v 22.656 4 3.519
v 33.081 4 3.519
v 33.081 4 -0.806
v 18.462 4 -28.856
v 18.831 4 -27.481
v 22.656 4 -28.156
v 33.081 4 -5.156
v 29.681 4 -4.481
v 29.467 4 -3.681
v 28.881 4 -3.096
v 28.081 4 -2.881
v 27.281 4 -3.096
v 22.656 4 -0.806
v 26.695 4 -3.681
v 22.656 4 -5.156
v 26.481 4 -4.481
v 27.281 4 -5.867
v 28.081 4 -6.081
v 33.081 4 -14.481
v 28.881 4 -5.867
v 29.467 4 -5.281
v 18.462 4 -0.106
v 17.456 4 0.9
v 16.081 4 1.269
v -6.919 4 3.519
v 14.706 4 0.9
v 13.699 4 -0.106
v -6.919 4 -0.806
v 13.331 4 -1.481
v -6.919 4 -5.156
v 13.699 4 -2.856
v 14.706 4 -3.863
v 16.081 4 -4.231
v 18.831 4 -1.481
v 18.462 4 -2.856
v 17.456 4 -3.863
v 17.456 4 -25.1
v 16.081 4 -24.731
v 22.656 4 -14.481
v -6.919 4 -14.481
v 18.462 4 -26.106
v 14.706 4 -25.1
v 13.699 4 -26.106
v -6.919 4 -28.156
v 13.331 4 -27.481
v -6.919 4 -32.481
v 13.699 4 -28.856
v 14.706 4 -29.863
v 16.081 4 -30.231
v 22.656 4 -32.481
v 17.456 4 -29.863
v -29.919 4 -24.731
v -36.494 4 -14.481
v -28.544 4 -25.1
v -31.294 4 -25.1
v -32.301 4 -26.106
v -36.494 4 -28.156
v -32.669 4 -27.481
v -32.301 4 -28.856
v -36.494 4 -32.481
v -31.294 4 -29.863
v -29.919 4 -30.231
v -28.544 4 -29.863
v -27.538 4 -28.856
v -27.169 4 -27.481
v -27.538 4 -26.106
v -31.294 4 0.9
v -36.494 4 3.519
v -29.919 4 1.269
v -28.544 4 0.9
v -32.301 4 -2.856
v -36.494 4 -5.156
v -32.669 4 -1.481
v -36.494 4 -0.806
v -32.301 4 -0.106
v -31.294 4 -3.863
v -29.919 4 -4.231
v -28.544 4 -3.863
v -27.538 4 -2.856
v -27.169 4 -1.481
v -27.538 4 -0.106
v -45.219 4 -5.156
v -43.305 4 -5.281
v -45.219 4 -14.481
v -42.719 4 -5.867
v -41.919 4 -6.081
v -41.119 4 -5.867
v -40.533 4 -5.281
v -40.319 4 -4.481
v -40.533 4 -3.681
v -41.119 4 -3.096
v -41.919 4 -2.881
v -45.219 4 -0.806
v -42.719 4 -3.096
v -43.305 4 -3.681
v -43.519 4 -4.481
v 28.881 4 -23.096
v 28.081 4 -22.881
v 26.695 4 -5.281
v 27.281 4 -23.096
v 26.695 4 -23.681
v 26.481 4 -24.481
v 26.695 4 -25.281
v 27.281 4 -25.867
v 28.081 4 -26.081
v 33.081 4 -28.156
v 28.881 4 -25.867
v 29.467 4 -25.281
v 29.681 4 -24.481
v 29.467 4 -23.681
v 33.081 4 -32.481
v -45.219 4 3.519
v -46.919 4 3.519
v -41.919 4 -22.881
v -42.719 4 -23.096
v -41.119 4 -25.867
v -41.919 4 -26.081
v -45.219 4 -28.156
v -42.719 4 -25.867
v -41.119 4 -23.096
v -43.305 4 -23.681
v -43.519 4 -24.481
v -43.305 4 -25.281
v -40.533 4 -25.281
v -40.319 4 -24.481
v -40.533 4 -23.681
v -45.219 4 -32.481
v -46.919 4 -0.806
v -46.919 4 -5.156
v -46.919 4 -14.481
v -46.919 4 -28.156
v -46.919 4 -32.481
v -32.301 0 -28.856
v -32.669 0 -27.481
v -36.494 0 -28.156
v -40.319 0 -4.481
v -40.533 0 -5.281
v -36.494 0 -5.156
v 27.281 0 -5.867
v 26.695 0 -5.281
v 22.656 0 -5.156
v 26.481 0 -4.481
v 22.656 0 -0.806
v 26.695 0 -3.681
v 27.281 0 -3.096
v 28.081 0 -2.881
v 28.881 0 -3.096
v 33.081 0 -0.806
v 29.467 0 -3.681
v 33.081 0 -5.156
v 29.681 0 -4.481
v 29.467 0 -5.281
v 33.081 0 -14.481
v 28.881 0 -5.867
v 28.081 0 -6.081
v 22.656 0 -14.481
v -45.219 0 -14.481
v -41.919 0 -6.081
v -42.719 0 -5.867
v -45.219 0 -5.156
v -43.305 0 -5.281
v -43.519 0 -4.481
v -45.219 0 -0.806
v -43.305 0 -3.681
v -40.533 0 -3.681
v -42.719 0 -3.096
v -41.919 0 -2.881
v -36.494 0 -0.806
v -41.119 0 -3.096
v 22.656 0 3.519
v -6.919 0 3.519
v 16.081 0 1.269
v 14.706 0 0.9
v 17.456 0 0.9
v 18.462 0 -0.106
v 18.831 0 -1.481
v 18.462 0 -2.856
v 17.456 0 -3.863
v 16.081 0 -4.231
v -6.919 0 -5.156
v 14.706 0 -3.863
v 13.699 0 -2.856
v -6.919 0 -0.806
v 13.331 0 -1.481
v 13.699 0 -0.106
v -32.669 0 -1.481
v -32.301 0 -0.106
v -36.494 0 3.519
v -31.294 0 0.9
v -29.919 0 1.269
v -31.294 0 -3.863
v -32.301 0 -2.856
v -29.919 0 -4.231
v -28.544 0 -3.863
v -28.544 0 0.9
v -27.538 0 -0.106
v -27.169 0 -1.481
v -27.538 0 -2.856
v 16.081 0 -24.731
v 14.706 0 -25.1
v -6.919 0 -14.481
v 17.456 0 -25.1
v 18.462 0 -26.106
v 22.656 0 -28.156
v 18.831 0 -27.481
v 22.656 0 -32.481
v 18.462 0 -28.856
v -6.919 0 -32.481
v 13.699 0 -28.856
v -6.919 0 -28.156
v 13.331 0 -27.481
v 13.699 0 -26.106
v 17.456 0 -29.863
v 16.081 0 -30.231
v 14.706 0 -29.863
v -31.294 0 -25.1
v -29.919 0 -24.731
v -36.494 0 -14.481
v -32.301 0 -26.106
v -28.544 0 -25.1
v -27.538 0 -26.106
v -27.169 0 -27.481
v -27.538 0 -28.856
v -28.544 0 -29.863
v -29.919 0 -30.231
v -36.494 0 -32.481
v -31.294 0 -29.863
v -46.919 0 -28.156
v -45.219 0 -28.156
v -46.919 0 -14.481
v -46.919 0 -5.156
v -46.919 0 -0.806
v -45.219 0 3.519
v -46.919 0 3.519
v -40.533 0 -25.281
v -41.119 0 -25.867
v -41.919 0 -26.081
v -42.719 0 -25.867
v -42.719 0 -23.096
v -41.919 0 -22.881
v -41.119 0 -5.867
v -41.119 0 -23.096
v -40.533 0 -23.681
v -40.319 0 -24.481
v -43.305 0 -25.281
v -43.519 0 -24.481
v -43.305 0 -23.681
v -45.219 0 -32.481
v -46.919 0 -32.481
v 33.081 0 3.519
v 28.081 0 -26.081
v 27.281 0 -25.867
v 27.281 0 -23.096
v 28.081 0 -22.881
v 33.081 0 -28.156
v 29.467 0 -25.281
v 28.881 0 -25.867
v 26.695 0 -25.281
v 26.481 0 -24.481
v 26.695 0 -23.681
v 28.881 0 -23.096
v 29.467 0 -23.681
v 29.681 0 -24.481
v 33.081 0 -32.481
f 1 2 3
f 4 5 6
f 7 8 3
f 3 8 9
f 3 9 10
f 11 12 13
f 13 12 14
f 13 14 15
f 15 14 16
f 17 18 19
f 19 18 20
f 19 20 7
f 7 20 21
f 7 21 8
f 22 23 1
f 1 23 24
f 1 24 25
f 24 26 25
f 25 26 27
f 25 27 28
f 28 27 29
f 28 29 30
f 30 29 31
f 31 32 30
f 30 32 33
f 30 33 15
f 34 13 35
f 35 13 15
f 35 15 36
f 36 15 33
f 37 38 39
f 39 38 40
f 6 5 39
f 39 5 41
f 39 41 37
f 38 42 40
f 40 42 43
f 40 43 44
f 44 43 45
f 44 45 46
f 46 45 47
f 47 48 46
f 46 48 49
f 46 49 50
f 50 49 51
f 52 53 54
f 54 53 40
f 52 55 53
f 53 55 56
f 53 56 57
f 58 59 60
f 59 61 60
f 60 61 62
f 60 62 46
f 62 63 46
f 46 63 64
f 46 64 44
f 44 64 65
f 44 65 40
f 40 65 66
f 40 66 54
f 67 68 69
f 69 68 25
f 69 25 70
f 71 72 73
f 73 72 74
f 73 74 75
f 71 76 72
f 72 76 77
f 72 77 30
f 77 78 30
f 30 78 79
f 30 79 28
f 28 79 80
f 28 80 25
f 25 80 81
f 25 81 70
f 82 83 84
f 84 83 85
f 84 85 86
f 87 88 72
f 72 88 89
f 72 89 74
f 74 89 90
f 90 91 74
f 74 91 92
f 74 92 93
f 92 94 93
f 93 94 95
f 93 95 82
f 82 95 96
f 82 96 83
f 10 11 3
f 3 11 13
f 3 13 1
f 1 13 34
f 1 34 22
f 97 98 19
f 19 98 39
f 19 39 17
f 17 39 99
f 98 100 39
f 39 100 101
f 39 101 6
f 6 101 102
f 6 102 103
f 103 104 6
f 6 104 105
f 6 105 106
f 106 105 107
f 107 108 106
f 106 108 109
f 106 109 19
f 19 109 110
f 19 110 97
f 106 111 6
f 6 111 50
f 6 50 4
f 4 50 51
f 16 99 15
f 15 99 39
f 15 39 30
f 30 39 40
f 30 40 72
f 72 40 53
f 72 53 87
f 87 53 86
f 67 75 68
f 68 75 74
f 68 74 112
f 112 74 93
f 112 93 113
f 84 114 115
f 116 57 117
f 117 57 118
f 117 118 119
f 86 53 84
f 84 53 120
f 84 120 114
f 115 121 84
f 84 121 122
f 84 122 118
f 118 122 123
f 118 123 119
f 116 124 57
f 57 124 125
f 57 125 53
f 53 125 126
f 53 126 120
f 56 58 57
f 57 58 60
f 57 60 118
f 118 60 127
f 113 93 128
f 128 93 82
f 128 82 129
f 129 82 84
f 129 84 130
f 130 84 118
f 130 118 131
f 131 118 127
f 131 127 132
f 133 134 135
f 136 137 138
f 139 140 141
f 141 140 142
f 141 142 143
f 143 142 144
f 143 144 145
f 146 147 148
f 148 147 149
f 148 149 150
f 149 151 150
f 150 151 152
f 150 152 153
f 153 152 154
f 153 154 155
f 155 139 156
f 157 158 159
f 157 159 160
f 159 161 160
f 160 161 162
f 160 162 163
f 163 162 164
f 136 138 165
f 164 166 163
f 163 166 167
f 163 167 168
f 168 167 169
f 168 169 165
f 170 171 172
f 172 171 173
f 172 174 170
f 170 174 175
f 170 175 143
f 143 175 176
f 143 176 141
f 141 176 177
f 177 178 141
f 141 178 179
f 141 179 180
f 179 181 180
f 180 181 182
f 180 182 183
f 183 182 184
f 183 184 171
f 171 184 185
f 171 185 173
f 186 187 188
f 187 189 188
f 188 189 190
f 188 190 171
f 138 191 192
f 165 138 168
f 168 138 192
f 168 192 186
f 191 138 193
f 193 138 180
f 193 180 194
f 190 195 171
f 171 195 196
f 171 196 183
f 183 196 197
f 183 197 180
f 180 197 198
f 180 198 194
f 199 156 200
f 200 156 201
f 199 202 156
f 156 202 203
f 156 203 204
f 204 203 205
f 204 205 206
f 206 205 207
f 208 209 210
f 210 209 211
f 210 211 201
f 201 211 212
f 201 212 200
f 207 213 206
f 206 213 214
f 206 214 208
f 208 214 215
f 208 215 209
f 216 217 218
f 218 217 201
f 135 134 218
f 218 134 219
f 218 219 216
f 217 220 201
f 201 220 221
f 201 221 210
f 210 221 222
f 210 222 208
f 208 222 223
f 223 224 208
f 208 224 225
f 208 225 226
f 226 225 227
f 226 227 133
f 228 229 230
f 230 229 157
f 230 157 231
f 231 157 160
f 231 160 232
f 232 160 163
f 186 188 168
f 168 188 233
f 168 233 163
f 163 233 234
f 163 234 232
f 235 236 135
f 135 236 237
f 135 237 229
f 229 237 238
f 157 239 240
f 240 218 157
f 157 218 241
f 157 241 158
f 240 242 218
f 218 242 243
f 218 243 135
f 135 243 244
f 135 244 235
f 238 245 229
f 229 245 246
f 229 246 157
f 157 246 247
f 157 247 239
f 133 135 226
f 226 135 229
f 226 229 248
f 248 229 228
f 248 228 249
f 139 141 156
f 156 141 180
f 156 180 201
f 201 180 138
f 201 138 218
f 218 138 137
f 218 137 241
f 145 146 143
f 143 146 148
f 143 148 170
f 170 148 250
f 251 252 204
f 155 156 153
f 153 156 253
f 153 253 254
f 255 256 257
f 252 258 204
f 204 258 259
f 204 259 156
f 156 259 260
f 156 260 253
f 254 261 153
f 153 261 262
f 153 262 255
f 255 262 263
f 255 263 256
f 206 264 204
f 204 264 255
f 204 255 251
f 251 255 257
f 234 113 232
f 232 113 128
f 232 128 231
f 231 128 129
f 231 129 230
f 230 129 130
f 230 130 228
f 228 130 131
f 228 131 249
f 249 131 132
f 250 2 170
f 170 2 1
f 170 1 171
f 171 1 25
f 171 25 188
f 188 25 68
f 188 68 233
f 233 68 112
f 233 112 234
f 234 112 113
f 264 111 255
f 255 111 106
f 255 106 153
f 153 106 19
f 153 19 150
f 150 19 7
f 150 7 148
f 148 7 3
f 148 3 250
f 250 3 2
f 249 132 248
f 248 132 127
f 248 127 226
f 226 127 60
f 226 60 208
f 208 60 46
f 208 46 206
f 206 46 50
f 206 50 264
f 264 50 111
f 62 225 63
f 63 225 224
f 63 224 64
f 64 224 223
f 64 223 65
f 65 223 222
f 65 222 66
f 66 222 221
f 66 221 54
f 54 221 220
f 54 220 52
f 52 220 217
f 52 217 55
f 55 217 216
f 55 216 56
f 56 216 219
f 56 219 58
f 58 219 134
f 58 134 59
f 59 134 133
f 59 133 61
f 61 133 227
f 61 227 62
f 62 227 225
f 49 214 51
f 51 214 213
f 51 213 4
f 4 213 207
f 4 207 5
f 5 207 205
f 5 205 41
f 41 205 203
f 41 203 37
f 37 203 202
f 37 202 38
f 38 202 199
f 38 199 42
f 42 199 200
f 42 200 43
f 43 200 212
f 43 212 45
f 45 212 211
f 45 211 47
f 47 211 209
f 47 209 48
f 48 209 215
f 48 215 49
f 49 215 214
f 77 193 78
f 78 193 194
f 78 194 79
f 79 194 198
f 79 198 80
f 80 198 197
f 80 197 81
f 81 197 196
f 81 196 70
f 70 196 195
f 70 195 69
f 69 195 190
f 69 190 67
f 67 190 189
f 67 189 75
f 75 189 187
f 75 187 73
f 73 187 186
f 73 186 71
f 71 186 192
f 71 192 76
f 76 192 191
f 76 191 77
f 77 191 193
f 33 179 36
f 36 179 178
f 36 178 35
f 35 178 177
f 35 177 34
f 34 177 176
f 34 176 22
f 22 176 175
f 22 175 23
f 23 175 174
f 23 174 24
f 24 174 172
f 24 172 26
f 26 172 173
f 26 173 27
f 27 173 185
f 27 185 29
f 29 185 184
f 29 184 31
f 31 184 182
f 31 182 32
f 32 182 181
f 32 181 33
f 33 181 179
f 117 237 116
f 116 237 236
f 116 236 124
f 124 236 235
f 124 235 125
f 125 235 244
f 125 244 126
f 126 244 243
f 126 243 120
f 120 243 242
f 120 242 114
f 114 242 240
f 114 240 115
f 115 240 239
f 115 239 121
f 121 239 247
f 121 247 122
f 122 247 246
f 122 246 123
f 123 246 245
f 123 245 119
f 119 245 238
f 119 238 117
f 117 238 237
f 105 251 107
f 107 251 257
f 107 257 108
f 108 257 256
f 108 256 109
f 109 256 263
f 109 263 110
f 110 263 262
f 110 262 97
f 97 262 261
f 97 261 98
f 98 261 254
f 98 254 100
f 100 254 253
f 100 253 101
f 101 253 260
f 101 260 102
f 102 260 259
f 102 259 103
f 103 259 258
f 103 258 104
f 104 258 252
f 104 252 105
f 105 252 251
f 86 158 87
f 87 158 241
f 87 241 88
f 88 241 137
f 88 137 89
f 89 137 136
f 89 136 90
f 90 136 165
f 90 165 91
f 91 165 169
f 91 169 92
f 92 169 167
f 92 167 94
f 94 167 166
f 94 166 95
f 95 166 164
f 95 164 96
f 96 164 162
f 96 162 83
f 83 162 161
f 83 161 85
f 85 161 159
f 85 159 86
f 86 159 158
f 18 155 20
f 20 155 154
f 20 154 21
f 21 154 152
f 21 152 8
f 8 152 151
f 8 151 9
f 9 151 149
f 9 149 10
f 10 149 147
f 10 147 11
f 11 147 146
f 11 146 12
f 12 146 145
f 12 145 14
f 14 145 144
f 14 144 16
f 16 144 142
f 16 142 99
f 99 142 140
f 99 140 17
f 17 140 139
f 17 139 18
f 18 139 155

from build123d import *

# Parameters (mm, degrees)
SKETCH_1_R      = 2.75
SKETCH_1_R_2    = 1.6
EXTRUDE_1_DEPTH = 4


with BuildPart() as part:
    # 草图1 → 凸台-拉伸1 (new body)
    with BuildSketch(Plane(origin=(0, 0, 0), x_dir=(1, 0, 0), z_dir=(0, 1, 0))):
        Polygon((-34.919077445, 32.481158859), (33.080922555, 32.481158859), (33.080922555, -3.518841141), (-34.919077445, -3.518841141), (-46.919077445, -3.518841141), (-46.919077445, 32.481158859), align=None)
        with Locations((-29.919077445, 27.481158859)):
            Circle(SKETCH_1_R, mode=Mode.SUBTRACT)
        with Locations((16.080922555, 27.481158859)):
            Circle(SKETCH_1_R, mode=Mode.SUBTRACT)
        with Locations((-29.919077445, 1.481158859)):
            Circle(SKETCH_1_R, mode=Mode.SUBTRACT)
        with Locations((16.080922555, 1.481158859)):
            Circle(SKETCH_1_R, mode=Mode.SUBTRACT)
        with Locations((-41.919077445, 24.481158859)):
            Circle(SKETCH_1_R_2, mode=Mode.SUBTRACT)
        with Locations((28.080922555, 24.481158859)):
            Circle(SKETCH_1_R_2, mode=Mode.SUBTRACT)
        with Locations((-41.919077445, 4.481158859)):
            Circle(SKETCH_1_R_2, mode=Mode.SUBTRACT)
        with Locations((28.080922555, 4.481158859)):
            Circle(SKETCH_1_R_2, mode=Mode.SUBTRACT)
    extrude(amount=EXTRUDE_1_DEPTH)


solid = part.part
